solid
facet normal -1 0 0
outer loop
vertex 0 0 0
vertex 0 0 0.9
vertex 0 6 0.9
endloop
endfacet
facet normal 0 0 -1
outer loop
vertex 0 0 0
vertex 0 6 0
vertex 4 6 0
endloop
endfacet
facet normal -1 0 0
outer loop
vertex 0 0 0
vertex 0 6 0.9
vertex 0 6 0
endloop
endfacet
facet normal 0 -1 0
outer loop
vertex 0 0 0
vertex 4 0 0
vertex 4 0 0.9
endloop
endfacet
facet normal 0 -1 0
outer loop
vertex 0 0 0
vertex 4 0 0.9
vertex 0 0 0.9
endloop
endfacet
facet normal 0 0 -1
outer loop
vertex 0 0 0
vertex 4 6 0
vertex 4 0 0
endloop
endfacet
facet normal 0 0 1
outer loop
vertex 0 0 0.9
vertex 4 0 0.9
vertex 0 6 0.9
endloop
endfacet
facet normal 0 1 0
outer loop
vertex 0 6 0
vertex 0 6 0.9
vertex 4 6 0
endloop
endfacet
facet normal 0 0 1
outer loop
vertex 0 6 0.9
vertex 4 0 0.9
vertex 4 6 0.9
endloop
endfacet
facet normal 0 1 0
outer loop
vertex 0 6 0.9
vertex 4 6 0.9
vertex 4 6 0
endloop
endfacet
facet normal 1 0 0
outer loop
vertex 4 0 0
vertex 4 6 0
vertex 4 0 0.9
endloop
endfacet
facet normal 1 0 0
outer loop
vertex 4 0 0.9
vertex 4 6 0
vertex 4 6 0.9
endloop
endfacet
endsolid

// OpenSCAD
/* Warning, this is a very basic generator with a lot of approximation 
input data : [VQFN, P7A, 4x6x0.9mm, 28, , A, C04-01064A]
generated by com.zoubworld.electronics.cad.model3d.Basic
Date : Sun Feb 15 10:50:49 CET 2026
*/

//body
color("black")
translate([0,0,0])
cube([4.0,6.0,0.9], center=false);
